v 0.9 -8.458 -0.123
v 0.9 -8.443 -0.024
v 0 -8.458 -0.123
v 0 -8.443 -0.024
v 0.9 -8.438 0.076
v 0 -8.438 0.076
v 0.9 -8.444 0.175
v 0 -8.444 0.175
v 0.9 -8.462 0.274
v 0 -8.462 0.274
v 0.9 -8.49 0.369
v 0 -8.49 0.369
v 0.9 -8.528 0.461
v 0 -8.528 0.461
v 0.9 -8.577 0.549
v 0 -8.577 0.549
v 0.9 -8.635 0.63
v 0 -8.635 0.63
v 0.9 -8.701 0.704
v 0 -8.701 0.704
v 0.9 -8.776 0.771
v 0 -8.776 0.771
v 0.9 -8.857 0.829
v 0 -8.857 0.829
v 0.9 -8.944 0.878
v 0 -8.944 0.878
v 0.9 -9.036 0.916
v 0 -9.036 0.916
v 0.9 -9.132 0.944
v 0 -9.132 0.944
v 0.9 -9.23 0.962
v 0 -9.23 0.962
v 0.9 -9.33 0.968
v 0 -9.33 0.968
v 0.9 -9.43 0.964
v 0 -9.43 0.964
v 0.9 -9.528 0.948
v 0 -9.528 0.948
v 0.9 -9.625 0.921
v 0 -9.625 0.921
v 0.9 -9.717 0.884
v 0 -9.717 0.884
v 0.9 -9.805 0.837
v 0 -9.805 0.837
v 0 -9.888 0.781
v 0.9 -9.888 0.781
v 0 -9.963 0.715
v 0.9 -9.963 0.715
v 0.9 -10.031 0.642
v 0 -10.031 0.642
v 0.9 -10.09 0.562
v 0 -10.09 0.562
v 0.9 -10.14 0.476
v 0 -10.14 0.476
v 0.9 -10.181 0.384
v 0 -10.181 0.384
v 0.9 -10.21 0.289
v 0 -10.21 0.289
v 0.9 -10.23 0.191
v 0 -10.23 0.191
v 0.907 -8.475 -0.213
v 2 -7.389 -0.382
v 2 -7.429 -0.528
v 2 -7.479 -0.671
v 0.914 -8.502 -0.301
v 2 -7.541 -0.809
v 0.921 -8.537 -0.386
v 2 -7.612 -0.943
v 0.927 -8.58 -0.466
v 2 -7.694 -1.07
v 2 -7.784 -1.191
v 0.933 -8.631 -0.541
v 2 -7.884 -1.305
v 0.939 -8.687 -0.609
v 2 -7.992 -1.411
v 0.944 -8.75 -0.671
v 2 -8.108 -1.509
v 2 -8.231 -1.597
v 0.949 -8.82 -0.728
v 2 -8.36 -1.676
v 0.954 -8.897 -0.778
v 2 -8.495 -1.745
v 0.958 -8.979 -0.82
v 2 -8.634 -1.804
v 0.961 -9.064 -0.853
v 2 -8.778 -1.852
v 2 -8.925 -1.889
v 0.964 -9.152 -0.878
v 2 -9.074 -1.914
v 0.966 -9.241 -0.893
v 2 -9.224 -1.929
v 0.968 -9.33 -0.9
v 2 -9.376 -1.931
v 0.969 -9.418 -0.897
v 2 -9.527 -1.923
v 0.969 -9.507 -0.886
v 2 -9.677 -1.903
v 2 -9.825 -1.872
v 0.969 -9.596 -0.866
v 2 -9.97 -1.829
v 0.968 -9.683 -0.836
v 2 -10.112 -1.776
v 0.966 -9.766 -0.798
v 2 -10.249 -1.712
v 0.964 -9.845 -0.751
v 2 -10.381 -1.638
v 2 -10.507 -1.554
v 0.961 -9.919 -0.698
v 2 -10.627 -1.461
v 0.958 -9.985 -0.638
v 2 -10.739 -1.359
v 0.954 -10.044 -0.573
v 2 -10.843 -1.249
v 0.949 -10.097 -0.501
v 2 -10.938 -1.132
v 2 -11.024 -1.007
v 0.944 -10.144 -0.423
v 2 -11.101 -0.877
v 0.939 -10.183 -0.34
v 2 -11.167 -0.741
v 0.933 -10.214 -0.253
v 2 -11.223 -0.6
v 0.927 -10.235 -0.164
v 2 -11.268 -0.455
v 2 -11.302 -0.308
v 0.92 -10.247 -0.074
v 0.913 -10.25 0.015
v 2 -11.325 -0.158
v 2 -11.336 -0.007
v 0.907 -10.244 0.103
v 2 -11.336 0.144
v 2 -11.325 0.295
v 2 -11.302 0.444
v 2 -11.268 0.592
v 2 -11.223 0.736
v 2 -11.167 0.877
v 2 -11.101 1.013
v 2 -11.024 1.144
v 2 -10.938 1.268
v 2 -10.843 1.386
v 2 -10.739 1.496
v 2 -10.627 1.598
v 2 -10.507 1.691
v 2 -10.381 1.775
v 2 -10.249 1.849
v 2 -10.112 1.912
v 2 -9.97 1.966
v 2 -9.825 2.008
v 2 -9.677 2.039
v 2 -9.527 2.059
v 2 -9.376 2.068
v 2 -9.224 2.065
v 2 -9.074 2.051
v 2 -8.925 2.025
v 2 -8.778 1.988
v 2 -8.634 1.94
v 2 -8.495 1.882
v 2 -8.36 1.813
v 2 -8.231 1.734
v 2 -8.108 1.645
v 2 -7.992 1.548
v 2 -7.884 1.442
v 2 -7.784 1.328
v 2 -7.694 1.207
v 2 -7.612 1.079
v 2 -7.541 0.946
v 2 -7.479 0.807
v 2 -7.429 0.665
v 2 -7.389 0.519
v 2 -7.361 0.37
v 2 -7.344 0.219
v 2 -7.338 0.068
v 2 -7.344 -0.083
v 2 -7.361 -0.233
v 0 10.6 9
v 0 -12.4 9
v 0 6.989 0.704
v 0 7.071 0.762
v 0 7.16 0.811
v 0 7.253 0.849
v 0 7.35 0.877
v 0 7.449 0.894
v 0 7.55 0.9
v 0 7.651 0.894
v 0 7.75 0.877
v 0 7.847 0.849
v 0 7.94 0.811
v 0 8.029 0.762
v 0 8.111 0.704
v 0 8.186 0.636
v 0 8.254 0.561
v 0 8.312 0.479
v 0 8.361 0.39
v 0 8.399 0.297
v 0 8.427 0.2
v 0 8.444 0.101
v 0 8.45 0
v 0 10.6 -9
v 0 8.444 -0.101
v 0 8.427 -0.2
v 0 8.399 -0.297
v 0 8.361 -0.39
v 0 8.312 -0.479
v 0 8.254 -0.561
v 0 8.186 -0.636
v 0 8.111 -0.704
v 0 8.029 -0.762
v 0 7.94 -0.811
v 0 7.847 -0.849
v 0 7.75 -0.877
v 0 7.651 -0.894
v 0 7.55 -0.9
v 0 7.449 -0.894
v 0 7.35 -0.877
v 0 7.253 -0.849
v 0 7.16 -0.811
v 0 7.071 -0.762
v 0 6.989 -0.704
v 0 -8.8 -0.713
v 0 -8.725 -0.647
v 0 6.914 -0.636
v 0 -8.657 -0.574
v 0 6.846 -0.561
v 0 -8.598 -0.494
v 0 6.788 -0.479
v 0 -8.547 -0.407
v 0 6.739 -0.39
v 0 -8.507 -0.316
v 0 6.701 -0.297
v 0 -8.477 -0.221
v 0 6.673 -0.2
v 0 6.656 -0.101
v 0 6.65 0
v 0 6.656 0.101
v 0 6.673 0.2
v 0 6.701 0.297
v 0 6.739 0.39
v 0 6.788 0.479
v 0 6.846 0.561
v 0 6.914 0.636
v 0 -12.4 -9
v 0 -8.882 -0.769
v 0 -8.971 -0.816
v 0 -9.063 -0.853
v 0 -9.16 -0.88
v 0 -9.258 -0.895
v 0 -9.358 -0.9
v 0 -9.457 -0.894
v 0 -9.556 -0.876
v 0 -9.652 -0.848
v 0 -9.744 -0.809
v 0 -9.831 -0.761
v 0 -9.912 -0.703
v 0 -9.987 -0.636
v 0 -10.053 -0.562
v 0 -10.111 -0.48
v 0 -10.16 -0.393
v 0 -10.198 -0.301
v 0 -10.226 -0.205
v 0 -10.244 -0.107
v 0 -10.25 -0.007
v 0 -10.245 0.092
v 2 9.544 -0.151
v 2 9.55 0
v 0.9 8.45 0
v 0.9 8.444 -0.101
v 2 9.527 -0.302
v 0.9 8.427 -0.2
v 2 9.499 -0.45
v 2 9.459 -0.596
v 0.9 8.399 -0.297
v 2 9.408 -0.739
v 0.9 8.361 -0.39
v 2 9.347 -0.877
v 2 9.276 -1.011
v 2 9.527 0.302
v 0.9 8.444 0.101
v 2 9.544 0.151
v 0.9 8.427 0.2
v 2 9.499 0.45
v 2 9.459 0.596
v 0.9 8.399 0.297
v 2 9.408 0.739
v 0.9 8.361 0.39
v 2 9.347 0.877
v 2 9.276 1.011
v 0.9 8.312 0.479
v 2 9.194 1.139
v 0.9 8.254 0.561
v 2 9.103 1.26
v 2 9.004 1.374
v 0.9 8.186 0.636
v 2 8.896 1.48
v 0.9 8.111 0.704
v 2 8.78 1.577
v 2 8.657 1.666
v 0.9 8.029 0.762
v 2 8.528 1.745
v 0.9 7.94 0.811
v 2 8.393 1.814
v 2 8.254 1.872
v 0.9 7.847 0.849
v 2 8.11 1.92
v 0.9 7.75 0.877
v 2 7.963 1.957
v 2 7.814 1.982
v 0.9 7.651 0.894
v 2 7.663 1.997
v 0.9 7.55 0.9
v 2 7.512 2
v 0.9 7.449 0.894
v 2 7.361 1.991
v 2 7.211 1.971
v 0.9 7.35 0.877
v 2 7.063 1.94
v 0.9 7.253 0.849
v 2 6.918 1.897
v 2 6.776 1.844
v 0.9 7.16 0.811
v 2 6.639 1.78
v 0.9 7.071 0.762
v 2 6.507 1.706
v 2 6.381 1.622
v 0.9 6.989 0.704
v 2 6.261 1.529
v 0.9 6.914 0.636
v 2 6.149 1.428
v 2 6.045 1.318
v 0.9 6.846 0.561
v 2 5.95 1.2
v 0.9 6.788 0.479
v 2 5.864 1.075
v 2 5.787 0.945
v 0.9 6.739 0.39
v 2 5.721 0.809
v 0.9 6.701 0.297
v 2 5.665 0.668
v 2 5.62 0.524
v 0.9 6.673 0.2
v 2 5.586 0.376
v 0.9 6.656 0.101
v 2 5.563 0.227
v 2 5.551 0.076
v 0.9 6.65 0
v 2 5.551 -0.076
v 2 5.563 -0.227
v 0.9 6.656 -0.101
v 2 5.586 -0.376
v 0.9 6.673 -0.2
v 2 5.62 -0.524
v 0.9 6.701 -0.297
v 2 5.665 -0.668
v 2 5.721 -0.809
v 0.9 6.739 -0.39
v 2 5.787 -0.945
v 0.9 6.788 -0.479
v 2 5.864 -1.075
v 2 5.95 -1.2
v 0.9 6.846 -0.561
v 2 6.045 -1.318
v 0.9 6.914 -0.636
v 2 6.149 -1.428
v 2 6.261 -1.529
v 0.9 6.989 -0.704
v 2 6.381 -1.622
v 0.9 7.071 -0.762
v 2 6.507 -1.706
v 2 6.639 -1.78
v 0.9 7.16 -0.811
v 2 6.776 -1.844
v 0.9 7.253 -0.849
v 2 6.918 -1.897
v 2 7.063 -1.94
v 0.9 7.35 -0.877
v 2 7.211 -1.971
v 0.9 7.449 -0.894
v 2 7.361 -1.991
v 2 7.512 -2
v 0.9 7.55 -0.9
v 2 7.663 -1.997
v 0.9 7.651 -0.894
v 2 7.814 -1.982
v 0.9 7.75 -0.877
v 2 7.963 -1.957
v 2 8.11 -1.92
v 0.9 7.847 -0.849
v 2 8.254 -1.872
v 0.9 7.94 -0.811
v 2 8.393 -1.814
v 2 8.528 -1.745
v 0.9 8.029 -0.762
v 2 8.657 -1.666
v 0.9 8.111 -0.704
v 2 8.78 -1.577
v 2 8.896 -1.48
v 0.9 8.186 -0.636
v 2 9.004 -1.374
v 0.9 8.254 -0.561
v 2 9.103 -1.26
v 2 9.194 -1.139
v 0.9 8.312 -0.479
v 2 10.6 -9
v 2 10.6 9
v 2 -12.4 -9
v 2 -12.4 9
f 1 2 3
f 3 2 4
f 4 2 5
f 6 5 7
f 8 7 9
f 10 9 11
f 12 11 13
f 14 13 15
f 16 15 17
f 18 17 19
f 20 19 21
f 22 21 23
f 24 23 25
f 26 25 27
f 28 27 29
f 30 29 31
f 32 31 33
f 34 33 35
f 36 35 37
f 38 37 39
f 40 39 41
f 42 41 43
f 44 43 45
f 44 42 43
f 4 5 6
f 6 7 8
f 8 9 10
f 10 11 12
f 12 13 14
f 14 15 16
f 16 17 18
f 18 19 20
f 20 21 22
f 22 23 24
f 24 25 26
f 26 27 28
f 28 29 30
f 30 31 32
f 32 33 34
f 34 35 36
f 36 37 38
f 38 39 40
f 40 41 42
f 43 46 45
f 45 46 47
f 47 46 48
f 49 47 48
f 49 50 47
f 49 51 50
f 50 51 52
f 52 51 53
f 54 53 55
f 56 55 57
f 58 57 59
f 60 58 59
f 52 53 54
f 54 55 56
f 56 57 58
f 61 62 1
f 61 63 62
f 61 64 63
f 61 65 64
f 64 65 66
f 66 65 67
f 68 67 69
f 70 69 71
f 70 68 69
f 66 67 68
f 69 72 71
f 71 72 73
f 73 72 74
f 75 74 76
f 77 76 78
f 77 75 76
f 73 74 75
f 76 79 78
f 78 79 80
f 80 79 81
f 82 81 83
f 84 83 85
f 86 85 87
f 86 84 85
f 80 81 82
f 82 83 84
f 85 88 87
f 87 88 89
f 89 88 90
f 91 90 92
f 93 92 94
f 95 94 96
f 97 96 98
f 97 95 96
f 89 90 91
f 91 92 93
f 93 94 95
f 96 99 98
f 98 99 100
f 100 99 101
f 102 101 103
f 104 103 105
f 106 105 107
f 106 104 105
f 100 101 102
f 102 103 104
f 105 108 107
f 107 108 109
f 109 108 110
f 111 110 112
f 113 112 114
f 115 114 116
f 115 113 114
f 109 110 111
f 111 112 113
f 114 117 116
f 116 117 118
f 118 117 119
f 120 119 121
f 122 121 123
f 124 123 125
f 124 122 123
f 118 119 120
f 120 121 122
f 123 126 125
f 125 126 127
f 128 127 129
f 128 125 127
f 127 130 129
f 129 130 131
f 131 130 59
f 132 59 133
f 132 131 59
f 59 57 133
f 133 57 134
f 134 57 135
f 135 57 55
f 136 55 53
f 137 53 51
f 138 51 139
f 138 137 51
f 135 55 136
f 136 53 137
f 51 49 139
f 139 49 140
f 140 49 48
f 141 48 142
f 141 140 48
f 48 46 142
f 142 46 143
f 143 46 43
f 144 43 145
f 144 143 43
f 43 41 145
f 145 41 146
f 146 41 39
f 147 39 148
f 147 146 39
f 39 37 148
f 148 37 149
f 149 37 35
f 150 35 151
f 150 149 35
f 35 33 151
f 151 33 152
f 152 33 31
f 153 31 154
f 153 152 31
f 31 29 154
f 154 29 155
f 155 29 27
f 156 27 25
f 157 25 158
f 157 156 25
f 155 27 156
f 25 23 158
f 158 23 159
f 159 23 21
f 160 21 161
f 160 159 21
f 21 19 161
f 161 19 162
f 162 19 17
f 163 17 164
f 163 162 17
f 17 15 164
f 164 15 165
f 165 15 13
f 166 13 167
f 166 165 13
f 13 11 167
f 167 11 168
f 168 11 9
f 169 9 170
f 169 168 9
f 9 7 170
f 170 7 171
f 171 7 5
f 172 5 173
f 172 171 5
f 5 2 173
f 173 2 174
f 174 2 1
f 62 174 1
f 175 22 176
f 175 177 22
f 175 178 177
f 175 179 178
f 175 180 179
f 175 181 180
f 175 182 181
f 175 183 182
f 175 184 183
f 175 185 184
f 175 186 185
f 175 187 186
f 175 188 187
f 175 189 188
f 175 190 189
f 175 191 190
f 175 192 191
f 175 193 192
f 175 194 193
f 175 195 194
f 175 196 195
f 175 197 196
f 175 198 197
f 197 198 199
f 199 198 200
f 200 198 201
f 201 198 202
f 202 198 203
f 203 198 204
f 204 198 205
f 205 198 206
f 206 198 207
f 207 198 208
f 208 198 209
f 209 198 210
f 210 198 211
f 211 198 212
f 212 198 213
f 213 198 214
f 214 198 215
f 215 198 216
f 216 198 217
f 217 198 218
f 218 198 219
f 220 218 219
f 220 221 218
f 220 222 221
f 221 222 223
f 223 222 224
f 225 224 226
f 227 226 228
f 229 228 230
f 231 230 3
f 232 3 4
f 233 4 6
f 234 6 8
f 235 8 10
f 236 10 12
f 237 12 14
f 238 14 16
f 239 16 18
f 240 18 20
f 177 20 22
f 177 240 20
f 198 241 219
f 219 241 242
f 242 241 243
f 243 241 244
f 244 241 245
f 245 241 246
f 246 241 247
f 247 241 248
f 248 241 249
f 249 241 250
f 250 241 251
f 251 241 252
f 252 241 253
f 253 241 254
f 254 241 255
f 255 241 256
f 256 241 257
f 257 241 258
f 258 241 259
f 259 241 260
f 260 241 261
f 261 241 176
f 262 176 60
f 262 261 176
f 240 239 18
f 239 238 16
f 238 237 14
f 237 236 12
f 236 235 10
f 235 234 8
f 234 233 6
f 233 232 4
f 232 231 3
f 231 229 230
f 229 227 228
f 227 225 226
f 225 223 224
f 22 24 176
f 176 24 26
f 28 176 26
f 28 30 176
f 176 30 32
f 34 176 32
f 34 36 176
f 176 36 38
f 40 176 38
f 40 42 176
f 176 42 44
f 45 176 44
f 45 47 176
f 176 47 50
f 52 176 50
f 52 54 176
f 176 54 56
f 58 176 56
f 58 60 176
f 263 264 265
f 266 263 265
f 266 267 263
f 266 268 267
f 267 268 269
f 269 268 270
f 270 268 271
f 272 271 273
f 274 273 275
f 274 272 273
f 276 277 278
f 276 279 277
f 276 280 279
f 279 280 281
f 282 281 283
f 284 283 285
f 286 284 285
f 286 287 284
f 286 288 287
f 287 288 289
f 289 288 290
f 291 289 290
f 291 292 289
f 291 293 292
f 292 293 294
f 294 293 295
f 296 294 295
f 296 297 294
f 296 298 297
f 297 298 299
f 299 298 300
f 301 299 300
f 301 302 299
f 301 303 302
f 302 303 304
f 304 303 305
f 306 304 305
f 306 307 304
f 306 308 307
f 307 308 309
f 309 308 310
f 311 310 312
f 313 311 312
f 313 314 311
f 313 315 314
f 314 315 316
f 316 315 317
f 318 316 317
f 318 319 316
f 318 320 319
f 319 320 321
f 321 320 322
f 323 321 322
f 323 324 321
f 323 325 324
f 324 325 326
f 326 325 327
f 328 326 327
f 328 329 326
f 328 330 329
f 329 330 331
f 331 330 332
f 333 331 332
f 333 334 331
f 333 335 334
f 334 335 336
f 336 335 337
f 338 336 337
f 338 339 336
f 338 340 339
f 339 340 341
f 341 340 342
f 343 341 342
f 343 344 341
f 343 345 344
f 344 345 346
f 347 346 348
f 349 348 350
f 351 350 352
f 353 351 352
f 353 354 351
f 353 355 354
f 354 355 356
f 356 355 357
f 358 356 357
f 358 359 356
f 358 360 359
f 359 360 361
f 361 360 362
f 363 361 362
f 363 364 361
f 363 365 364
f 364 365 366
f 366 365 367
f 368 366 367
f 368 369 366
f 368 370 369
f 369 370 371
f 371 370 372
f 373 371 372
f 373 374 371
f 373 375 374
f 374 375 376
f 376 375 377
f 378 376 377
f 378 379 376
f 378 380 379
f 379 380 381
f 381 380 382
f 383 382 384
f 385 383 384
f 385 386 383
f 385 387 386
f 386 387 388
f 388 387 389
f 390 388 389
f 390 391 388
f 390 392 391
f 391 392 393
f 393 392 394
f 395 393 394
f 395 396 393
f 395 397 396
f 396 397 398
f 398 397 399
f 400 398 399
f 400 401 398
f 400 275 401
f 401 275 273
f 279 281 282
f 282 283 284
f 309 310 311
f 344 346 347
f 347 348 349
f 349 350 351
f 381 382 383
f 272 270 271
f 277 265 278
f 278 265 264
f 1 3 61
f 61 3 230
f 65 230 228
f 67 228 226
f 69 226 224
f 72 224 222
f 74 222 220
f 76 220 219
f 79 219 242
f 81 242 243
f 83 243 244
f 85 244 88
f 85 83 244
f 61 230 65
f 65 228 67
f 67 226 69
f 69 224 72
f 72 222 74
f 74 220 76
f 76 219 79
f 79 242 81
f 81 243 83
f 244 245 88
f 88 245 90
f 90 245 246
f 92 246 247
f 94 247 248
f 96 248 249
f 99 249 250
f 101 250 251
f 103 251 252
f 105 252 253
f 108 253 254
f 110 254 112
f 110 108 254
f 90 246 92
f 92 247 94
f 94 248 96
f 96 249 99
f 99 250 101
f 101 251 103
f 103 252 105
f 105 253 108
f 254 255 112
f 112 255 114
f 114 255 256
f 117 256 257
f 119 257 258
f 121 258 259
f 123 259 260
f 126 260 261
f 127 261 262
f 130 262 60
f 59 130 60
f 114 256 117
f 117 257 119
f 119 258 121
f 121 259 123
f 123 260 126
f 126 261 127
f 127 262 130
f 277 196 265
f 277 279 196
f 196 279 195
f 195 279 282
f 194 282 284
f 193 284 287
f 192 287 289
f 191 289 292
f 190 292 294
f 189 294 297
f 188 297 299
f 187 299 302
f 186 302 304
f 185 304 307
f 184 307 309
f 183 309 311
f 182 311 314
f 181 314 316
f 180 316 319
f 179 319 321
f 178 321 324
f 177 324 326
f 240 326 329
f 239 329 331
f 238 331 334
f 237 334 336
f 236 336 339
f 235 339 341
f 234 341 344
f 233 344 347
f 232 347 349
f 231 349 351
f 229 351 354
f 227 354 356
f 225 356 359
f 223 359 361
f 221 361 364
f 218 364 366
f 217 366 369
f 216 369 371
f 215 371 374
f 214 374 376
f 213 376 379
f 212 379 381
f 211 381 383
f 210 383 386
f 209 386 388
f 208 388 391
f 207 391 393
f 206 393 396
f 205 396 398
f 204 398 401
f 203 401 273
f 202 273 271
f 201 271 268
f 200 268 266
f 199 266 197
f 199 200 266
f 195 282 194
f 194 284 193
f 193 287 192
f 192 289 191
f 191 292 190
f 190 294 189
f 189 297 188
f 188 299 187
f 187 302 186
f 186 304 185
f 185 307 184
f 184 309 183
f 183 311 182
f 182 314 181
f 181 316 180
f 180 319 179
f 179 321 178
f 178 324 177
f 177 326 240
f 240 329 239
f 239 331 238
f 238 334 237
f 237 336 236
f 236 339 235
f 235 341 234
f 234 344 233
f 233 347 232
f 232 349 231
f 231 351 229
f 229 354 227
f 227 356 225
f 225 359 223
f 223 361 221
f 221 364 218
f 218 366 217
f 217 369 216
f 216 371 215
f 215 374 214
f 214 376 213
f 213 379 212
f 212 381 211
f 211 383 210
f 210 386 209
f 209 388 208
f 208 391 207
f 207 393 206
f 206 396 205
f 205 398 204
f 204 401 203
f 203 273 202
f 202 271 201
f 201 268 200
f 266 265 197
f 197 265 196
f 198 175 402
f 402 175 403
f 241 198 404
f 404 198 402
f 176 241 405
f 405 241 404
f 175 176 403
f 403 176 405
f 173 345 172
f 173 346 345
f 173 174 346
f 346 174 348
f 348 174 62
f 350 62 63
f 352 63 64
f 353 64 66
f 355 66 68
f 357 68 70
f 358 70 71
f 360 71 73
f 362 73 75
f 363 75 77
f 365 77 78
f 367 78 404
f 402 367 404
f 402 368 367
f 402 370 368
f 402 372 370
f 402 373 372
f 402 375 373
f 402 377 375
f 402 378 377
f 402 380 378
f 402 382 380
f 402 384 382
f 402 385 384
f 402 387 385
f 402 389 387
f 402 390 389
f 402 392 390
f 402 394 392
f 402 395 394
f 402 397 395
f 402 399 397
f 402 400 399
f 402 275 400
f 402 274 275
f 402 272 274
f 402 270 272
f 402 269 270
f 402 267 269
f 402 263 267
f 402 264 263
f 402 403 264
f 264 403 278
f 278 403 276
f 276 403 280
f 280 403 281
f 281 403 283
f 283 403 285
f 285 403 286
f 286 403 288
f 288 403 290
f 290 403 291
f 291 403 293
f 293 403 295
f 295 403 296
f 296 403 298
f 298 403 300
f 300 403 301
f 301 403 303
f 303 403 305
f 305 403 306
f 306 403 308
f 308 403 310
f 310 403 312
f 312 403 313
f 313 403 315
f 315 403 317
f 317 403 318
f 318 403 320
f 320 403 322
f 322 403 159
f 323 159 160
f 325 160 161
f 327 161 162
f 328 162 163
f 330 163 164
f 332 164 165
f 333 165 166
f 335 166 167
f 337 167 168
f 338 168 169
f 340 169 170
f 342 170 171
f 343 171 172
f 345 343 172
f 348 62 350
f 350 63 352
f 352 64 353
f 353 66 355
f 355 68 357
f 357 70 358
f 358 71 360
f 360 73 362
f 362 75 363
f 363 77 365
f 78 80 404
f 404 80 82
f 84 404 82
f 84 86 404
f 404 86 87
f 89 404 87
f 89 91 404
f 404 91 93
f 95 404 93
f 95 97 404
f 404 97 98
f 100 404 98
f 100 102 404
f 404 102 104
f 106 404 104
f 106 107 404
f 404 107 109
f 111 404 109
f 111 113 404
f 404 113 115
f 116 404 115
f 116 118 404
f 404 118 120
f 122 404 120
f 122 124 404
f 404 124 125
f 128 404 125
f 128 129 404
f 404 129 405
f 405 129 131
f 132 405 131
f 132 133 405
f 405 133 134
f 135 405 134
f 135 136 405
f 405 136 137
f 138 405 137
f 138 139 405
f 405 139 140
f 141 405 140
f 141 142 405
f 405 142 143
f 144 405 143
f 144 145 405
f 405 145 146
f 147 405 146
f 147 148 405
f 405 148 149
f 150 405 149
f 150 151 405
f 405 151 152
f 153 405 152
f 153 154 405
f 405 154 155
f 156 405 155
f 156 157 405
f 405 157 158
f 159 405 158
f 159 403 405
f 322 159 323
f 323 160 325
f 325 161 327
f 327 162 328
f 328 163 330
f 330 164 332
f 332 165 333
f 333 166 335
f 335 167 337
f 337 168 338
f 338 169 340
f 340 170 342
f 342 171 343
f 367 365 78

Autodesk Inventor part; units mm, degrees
ref_plane "YZ Plane" through (0, 0, 0) normal (1, 0, 0) x (0, 1, 0)
ref_plane "XZ Plane" through (0, 0, 0) normal (0, 1, 0) x (-1, 0, 0)
ref_plane "XY Plane" through (0, 0, 0) normal (0, 0, 1) x (1, 0, 0)
sketch "Sketch1" plane through (0, 0, 0) normal (1, 0, 0) x (0, 1, 0)
  line L0 (-12.4, 9) -> (10.6, 9)
  line L1 (10.6, 9) -> (10.6, -9)
  line L2 (10.6, -9) -> (-12.4, -9)
  line L3 (-12.4, -9) -> (-12.4, 9)
  circle A0 centre (7.55, 0) radius 0.9
  circle A1 centre (-9.35, 0) radius 0.9
  line L4 (-0.9, 9) -> (-0.9, -9) construction
  line L5 (8.45, 0) -> (-10.25, 0) construction
  point P0 (-0.9, 0)
  point P1 (-0.9, 0)
  dimension "d5" = 1.8
  dimension "d6" = 1.8
  dimension "d0" = 23
  dimension "d1" = 18
  dimension "d4" = 16.9
extrude "Extrusion1" add sketch "Sketch1" along normal blind 2
hole "Hole1" at (2, 7.55, 0) direction (-1, 0, 0) diameter 1.8 depth 15 tip angle 118 countersink diameter 4 countersink angle 90
hole "Hole2" at (2, -9.3379, 0.0682) direction (-1, 0, 0) diameter 1.8 depth 15 tip angle 118 countersink diameter 4 countersink angle 90
equation "\"d6\" = d5"
properties part number "USB-bay_cover"
